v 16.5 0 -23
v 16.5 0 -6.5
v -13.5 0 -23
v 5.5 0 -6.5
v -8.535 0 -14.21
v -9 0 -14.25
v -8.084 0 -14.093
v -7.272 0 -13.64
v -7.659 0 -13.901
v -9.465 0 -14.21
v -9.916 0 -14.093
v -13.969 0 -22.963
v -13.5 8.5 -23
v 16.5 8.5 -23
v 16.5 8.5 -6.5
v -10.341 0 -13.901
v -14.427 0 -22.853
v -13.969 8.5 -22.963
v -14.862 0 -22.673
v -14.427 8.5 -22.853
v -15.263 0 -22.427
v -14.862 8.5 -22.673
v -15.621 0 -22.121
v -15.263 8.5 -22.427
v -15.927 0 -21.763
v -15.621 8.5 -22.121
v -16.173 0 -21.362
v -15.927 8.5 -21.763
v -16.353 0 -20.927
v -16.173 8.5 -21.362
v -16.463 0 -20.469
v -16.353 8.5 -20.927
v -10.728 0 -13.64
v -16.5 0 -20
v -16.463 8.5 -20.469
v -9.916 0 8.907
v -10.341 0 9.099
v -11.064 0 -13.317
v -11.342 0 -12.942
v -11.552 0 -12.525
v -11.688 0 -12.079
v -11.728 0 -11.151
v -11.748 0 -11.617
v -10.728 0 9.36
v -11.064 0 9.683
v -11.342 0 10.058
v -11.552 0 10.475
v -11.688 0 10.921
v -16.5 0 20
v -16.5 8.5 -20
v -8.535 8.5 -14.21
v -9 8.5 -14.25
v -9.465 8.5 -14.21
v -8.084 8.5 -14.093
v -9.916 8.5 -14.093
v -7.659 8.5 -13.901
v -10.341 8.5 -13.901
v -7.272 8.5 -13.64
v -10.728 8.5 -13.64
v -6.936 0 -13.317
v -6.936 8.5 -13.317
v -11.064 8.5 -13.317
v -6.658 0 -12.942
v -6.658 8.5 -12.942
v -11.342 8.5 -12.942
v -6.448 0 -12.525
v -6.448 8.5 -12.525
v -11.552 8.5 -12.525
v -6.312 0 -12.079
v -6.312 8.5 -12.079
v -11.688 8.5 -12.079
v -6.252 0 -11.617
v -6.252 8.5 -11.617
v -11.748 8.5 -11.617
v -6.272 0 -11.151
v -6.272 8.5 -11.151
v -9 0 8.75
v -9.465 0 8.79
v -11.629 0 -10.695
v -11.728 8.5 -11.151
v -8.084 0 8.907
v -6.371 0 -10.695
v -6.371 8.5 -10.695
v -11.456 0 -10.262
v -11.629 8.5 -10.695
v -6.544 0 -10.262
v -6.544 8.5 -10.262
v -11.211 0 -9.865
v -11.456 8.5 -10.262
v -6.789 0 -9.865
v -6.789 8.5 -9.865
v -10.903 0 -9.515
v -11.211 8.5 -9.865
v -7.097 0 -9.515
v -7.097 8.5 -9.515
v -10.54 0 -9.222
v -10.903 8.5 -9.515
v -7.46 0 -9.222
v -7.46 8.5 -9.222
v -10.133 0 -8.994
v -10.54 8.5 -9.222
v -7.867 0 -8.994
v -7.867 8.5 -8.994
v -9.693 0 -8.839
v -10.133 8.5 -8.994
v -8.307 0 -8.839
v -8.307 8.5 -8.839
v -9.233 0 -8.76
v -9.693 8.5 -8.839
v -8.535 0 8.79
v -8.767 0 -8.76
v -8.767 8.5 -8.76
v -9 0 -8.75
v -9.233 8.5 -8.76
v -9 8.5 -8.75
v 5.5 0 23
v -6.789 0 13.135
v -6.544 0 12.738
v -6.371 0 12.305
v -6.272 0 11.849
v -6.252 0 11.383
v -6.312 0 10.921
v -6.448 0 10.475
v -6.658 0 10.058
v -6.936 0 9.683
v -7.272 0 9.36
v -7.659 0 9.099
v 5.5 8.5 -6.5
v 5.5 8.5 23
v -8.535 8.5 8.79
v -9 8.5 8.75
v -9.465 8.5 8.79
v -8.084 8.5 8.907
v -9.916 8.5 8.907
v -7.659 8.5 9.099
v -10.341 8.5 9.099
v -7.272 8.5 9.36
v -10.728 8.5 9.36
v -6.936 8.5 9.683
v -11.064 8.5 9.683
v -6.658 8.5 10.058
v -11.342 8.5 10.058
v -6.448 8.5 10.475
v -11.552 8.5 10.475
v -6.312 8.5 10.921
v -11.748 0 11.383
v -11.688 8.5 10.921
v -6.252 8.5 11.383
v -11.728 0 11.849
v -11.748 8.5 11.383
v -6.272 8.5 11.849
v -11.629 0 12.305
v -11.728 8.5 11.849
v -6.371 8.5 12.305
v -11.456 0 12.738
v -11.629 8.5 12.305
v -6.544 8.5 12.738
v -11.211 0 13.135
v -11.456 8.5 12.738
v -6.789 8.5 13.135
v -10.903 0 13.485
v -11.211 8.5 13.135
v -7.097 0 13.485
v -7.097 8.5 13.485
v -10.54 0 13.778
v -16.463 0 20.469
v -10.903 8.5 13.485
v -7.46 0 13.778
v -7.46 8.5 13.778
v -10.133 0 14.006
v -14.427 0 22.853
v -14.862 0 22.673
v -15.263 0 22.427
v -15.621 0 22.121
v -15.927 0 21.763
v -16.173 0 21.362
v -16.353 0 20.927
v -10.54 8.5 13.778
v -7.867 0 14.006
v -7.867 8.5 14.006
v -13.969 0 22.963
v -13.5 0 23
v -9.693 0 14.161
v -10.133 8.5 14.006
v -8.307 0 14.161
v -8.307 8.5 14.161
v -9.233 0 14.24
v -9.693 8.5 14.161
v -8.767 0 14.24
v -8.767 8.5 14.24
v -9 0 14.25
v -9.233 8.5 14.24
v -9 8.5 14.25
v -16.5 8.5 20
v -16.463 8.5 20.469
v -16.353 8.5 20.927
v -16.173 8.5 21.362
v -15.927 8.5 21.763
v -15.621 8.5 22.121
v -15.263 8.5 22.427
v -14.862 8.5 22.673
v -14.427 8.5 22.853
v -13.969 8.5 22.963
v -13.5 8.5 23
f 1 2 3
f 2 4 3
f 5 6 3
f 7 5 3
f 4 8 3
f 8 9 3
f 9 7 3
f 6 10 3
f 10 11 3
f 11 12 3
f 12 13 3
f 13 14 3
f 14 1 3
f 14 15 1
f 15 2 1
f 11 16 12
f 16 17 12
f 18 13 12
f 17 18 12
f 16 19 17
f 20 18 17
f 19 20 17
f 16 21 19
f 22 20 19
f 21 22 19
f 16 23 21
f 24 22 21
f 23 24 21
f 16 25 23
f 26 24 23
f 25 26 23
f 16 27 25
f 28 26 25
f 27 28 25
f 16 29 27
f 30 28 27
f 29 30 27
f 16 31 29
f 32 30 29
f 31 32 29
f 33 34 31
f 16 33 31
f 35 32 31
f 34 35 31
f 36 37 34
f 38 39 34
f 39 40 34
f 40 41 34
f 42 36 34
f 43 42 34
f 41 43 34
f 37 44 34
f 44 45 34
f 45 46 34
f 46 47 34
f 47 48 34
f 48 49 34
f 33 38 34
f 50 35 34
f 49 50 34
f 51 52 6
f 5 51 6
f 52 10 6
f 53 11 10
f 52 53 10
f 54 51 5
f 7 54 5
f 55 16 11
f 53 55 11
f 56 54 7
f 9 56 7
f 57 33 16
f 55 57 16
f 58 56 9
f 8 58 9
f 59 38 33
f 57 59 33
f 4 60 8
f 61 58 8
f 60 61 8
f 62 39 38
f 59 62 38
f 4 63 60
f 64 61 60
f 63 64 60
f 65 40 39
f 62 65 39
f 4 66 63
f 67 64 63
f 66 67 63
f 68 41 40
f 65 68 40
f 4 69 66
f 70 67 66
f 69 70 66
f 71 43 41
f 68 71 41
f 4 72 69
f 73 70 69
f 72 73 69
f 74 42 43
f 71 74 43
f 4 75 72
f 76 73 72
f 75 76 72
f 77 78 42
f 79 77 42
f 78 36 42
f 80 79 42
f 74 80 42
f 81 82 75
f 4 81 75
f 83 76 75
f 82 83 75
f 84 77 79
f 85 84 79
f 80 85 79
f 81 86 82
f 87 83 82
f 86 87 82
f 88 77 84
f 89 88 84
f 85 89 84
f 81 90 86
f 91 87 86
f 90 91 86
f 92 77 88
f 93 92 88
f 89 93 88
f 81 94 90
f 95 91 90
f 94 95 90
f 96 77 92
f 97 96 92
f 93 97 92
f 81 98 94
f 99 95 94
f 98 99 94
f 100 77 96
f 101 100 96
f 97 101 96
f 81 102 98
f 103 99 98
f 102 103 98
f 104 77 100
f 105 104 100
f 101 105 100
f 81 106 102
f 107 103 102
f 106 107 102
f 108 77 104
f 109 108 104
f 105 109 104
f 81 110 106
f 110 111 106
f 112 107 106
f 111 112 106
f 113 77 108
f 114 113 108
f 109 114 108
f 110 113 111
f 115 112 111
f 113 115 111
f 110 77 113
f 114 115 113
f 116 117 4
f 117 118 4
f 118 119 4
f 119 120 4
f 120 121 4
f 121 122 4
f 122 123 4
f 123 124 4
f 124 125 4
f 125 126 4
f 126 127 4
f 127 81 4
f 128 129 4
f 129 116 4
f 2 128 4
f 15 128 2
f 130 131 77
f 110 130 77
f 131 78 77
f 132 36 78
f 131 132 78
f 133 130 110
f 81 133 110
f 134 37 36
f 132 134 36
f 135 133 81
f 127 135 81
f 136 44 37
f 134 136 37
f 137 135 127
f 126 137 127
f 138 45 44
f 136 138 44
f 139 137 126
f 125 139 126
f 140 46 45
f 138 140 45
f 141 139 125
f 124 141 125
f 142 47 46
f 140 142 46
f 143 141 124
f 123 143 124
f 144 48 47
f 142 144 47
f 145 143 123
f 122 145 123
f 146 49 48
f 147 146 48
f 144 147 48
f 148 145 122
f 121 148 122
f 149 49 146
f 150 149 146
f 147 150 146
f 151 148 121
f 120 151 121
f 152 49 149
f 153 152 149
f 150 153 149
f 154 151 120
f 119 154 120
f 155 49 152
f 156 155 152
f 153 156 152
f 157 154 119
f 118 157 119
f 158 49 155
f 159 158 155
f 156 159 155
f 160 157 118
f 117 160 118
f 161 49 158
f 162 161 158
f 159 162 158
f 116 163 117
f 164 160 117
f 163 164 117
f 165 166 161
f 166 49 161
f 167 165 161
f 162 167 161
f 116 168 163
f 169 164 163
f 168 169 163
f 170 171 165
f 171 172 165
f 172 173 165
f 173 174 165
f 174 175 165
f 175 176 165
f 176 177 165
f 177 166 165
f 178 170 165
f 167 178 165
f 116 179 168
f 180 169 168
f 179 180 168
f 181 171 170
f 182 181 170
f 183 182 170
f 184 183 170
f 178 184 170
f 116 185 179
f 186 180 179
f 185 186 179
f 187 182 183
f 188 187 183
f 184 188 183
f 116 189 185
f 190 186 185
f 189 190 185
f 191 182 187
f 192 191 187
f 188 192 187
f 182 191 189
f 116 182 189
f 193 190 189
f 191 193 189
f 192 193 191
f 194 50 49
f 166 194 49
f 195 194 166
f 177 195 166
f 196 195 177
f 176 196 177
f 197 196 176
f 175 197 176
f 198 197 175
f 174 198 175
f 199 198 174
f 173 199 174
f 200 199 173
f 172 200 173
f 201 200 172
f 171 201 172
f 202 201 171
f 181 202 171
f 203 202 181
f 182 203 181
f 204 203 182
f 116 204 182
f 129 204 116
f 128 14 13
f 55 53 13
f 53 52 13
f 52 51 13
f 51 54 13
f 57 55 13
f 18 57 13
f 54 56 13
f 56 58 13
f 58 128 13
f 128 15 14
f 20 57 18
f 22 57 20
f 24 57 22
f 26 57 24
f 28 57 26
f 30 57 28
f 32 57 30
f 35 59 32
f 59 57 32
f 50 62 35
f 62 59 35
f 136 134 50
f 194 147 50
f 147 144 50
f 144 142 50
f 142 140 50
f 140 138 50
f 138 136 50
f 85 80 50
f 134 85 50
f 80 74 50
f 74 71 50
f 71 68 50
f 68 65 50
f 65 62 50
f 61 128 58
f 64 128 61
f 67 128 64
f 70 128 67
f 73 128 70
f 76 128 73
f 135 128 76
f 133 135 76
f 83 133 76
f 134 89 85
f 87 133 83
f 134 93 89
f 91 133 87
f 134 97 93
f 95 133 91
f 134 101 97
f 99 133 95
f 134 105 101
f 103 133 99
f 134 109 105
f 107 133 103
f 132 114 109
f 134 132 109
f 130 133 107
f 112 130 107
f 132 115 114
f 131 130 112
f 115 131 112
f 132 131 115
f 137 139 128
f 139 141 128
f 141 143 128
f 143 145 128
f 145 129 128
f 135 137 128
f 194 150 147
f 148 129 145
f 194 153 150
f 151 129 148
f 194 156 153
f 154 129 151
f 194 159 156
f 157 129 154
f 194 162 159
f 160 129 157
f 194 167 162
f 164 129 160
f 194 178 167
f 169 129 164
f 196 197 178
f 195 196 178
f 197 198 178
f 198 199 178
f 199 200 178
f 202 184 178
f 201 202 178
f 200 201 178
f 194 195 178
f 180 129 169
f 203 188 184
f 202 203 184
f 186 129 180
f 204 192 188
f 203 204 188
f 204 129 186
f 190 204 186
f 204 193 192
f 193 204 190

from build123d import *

# Parameters (mm, degrees)
ESBO_O3_R                = 2.75
RESSALTO_EXTRUS_O1_DEPTH = 8.5


with BuildPart() as part:
    # Esboço3 → Ressalto-extrusão1 (new body)
    with BuildSketch(Plane(origin=(0, 0, 0), x_dir=(1, 0, 0), z_dir=(0, 1, 0))):
        with BuildLine():
            Line((-16.5, 20), (-16.5, -20))
            ThreePointArc((-16.5, -20), (-15.621320344, -22.121320344), (-13.5, -23))
            Line((-13.5, -23), (5.5, -23))
            Line((5.5, -23), (5.5, 6.5))
            Line((5.5, 6.5), (16.5, 6.5))
            Line((16.5, 6.5), (16.5, 23))
            Line((16.5, 23), (-13.5, 23))
            ThreePointArc((-13.5, 23), (-15.621320344, 22.121320344), (-16.5, 20))
        make_face()
        with Locations((-9, 11.5)):
            Circle(ESBO_O3_R, mode=Mode.SUBTRACT)
        with Locations((-9, -11.5)):
            Circle(ESBO_O3_R, mode=Mode.SUBTRACT)
    extrude(amount=RESSALTO_EXTRUS_O1_DEPTH)


solid = part.part
